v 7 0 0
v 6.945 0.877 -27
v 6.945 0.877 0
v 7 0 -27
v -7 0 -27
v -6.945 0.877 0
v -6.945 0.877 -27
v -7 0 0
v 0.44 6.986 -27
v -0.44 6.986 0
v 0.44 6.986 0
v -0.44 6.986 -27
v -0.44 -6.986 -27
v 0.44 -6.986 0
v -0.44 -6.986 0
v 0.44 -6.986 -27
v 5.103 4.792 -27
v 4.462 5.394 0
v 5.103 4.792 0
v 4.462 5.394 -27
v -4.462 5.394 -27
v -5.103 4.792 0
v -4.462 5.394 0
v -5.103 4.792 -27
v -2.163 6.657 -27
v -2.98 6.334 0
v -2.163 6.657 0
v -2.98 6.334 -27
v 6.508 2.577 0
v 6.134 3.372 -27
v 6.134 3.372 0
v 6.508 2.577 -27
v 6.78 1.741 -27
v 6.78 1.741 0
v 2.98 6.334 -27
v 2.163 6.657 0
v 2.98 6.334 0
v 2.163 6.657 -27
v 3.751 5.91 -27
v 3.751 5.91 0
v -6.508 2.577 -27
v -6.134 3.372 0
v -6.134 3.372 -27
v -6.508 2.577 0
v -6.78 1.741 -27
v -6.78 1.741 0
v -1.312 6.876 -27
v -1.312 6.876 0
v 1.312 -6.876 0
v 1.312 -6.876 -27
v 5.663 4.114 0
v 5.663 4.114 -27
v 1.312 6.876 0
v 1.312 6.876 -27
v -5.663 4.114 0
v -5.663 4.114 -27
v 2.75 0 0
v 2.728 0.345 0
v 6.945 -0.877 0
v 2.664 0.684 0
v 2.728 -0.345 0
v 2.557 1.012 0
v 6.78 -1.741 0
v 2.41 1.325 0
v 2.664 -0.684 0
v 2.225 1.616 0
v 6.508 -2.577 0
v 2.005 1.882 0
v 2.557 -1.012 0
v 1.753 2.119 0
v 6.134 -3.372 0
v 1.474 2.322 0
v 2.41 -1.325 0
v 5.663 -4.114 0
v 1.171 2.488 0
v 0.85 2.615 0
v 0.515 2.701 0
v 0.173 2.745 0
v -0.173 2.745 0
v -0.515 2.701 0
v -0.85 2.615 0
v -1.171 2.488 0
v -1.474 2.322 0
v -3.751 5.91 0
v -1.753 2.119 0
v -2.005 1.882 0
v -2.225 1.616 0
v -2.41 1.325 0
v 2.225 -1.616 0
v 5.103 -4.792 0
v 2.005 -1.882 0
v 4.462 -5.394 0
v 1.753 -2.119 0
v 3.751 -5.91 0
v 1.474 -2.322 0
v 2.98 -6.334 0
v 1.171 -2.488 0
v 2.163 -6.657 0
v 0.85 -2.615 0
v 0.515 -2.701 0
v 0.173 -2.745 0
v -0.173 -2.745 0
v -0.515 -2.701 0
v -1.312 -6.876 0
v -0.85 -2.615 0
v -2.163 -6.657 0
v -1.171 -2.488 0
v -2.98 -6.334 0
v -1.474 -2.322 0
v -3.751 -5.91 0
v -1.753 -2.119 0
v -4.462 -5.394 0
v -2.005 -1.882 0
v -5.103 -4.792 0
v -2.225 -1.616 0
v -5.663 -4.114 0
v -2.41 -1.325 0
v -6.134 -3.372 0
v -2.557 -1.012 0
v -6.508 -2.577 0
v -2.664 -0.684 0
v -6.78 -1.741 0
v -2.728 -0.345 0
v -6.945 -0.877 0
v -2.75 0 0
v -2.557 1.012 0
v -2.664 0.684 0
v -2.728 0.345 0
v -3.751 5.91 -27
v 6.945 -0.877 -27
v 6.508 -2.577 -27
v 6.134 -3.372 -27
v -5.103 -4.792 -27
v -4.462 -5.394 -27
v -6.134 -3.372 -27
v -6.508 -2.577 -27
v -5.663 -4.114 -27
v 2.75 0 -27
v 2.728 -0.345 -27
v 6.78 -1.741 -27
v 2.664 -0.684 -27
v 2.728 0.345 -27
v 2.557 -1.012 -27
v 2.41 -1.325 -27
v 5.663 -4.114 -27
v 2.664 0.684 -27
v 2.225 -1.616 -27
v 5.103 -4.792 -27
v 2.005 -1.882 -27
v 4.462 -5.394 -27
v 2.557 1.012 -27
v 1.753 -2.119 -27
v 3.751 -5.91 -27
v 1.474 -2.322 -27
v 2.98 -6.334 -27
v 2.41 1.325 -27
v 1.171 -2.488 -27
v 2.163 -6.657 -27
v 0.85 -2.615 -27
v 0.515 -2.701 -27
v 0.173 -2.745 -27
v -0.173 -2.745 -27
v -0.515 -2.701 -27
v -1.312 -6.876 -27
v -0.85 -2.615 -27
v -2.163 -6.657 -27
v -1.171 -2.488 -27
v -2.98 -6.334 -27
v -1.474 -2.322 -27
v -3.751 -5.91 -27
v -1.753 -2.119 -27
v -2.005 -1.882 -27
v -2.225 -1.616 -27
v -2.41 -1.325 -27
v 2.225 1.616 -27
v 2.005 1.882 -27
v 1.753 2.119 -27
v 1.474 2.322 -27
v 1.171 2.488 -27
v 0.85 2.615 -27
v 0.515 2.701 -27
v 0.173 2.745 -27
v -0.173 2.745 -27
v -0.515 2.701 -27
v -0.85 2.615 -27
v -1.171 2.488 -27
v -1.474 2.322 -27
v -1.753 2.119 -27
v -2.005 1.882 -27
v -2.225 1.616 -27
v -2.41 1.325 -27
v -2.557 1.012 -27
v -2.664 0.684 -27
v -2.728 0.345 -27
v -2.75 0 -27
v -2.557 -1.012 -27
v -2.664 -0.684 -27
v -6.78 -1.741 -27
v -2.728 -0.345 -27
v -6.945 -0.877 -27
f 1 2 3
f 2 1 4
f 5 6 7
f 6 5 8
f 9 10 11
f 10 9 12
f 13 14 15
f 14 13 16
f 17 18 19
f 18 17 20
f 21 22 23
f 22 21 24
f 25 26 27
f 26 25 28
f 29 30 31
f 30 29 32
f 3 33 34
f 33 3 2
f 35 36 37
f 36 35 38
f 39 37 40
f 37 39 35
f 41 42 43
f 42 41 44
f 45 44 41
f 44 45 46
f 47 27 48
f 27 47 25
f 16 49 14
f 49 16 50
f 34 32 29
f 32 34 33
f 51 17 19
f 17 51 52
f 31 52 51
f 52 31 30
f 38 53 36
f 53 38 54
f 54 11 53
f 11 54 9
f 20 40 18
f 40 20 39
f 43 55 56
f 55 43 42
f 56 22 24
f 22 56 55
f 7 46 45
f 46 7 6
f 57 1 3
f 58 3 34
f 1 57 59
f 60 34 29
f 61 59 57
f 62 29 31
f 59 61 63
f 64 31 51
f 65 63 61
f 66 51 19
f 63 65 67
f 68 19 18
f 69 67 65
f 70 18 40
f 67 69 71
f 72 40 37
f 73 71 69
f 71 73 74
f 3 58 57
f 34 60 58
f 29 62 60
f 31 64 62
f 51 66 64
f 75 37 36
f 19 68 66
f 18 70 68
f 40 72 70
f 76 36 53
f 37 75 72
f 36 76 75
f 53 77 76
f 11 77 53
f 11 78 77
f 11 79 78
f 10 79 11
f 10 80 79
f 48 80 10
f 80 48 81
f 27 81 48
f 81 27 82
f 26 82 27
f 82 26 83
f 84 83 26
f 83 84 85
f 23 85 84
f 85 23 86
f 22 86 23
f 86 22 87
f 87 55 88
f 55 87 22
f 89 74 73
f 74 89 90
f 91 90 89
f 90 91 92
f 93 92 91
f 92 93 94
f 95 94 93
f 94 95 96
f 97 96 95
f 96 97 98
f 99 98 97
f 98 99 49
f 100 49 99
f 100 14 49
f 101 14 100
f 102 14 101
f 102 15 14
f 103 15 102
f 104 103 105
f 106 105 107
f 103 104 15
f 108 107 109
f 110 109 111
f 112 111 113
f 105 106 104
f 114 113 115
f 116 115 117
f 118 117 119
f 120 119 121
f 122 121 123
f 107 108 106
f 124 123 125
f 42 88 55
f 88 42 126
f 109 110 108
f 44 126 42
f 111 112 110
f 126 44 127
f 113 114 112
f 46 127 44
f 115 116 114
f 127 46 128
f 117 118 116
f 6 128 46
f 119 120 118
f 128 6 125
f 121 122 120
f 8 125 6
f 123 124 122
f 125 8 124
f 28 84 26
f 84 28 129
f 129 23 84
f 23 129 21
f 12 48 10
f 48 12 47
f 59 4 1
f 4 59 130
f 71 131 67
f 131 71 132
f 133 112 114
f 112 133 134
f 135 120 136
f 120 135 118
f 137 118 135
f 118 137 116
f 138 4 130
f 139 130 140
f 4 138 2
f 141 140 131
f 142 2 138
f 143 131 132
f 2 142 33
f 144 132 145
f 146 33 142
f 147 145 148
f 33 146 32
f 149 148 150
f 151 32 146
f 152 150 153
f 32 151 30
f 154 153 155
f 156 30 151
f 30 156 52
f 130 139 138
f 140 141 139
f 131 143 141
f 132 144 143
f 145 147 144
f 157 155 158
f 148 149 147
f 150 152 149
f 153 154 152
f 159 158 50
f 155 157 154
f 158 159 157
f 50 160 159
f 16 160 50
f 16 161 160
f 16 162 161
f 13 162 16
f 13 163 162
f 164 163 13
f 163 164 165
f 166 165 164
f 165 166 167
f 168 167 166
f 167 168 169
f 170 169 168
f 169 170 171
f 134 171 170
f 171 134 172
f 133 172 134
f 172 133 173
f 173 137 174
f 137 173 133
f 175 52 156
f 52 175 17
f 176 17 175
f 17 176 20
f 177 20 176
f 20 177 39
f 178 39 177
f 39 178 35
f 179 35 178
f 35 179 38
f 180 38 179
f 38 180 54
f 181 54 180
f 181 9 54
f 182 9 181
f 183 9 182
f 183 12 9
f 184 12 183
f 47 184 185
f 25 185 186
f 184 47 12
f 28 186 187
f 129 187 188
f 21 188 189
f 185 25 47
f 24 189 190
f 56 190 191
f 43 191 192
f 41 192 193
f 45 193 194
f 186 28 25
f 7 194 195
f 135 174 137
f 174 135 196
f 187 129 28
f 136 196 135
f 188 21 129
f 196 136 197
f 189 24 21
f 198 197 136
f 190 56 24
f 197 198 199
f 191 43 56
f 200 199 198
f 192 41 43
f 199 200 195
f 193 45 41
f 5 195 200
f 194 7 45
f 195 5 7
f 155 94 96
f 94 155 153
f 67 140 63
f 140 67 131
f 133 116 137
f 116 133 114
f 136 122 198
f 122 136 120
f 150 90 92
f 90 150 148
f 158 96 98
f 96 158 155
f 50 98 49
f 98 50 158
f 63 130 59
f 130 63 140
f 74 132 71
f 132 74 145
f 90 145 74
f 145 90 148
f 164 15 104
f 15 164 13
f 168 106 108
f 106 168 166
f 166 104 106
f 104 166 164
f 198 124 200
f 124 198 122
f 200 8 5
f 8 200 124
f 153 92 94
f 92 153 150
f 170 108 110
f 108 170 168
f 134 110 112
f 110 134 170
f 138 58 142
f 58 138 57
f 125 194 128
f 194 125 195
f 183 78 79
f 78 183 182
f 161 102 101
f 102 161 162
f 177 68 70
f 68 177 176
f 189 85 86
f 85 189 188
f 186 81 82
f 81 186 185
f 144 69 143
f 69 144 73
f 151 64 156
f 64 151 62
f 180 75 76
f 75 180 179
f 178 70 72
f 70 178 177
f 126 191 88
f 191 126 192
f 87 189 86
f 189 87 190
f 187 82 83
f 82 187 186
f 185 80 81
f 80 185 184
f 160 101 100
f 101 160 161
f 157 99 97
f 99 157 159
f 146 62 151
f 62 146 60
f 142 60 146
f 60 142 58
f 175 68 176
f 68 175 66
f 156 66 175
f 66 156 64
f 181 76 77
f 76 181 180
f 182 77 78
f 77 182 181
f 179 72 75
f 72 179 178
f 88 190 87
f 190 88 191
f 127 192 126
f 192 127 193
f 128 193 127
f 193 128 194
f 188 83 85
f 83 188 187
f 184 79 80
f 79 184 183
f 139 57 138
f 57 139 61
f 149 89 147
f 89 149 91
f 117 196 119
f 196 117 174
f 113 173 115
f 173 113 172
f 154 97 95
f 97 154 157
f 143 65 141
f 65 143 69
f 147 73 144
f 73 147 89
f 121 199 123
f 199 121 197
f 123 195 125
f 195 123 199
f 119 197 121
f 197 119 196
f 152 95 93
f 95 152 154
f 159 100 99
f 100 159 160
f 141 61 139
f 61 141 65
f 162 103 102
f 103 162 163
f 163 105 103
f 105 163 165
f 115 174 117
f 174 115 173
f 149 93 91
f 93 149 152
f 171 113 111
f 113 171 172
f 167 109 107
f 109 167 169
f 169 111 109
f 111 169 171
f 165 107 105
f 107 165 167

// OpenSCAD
$fn = 50;


difference() {
	union() {
		translate(v = [0, 0, -27.0000000000]) {
			cylinder(h = 27, r = 7.0000000000);
		}
		cylinder(h = 0, r = 16.0000000000);
	}
	union() {
		#translate(v = [0, 0, -27]) {
			cylinder(h = 27, r = 2.7500000000);
		}
	}
}
